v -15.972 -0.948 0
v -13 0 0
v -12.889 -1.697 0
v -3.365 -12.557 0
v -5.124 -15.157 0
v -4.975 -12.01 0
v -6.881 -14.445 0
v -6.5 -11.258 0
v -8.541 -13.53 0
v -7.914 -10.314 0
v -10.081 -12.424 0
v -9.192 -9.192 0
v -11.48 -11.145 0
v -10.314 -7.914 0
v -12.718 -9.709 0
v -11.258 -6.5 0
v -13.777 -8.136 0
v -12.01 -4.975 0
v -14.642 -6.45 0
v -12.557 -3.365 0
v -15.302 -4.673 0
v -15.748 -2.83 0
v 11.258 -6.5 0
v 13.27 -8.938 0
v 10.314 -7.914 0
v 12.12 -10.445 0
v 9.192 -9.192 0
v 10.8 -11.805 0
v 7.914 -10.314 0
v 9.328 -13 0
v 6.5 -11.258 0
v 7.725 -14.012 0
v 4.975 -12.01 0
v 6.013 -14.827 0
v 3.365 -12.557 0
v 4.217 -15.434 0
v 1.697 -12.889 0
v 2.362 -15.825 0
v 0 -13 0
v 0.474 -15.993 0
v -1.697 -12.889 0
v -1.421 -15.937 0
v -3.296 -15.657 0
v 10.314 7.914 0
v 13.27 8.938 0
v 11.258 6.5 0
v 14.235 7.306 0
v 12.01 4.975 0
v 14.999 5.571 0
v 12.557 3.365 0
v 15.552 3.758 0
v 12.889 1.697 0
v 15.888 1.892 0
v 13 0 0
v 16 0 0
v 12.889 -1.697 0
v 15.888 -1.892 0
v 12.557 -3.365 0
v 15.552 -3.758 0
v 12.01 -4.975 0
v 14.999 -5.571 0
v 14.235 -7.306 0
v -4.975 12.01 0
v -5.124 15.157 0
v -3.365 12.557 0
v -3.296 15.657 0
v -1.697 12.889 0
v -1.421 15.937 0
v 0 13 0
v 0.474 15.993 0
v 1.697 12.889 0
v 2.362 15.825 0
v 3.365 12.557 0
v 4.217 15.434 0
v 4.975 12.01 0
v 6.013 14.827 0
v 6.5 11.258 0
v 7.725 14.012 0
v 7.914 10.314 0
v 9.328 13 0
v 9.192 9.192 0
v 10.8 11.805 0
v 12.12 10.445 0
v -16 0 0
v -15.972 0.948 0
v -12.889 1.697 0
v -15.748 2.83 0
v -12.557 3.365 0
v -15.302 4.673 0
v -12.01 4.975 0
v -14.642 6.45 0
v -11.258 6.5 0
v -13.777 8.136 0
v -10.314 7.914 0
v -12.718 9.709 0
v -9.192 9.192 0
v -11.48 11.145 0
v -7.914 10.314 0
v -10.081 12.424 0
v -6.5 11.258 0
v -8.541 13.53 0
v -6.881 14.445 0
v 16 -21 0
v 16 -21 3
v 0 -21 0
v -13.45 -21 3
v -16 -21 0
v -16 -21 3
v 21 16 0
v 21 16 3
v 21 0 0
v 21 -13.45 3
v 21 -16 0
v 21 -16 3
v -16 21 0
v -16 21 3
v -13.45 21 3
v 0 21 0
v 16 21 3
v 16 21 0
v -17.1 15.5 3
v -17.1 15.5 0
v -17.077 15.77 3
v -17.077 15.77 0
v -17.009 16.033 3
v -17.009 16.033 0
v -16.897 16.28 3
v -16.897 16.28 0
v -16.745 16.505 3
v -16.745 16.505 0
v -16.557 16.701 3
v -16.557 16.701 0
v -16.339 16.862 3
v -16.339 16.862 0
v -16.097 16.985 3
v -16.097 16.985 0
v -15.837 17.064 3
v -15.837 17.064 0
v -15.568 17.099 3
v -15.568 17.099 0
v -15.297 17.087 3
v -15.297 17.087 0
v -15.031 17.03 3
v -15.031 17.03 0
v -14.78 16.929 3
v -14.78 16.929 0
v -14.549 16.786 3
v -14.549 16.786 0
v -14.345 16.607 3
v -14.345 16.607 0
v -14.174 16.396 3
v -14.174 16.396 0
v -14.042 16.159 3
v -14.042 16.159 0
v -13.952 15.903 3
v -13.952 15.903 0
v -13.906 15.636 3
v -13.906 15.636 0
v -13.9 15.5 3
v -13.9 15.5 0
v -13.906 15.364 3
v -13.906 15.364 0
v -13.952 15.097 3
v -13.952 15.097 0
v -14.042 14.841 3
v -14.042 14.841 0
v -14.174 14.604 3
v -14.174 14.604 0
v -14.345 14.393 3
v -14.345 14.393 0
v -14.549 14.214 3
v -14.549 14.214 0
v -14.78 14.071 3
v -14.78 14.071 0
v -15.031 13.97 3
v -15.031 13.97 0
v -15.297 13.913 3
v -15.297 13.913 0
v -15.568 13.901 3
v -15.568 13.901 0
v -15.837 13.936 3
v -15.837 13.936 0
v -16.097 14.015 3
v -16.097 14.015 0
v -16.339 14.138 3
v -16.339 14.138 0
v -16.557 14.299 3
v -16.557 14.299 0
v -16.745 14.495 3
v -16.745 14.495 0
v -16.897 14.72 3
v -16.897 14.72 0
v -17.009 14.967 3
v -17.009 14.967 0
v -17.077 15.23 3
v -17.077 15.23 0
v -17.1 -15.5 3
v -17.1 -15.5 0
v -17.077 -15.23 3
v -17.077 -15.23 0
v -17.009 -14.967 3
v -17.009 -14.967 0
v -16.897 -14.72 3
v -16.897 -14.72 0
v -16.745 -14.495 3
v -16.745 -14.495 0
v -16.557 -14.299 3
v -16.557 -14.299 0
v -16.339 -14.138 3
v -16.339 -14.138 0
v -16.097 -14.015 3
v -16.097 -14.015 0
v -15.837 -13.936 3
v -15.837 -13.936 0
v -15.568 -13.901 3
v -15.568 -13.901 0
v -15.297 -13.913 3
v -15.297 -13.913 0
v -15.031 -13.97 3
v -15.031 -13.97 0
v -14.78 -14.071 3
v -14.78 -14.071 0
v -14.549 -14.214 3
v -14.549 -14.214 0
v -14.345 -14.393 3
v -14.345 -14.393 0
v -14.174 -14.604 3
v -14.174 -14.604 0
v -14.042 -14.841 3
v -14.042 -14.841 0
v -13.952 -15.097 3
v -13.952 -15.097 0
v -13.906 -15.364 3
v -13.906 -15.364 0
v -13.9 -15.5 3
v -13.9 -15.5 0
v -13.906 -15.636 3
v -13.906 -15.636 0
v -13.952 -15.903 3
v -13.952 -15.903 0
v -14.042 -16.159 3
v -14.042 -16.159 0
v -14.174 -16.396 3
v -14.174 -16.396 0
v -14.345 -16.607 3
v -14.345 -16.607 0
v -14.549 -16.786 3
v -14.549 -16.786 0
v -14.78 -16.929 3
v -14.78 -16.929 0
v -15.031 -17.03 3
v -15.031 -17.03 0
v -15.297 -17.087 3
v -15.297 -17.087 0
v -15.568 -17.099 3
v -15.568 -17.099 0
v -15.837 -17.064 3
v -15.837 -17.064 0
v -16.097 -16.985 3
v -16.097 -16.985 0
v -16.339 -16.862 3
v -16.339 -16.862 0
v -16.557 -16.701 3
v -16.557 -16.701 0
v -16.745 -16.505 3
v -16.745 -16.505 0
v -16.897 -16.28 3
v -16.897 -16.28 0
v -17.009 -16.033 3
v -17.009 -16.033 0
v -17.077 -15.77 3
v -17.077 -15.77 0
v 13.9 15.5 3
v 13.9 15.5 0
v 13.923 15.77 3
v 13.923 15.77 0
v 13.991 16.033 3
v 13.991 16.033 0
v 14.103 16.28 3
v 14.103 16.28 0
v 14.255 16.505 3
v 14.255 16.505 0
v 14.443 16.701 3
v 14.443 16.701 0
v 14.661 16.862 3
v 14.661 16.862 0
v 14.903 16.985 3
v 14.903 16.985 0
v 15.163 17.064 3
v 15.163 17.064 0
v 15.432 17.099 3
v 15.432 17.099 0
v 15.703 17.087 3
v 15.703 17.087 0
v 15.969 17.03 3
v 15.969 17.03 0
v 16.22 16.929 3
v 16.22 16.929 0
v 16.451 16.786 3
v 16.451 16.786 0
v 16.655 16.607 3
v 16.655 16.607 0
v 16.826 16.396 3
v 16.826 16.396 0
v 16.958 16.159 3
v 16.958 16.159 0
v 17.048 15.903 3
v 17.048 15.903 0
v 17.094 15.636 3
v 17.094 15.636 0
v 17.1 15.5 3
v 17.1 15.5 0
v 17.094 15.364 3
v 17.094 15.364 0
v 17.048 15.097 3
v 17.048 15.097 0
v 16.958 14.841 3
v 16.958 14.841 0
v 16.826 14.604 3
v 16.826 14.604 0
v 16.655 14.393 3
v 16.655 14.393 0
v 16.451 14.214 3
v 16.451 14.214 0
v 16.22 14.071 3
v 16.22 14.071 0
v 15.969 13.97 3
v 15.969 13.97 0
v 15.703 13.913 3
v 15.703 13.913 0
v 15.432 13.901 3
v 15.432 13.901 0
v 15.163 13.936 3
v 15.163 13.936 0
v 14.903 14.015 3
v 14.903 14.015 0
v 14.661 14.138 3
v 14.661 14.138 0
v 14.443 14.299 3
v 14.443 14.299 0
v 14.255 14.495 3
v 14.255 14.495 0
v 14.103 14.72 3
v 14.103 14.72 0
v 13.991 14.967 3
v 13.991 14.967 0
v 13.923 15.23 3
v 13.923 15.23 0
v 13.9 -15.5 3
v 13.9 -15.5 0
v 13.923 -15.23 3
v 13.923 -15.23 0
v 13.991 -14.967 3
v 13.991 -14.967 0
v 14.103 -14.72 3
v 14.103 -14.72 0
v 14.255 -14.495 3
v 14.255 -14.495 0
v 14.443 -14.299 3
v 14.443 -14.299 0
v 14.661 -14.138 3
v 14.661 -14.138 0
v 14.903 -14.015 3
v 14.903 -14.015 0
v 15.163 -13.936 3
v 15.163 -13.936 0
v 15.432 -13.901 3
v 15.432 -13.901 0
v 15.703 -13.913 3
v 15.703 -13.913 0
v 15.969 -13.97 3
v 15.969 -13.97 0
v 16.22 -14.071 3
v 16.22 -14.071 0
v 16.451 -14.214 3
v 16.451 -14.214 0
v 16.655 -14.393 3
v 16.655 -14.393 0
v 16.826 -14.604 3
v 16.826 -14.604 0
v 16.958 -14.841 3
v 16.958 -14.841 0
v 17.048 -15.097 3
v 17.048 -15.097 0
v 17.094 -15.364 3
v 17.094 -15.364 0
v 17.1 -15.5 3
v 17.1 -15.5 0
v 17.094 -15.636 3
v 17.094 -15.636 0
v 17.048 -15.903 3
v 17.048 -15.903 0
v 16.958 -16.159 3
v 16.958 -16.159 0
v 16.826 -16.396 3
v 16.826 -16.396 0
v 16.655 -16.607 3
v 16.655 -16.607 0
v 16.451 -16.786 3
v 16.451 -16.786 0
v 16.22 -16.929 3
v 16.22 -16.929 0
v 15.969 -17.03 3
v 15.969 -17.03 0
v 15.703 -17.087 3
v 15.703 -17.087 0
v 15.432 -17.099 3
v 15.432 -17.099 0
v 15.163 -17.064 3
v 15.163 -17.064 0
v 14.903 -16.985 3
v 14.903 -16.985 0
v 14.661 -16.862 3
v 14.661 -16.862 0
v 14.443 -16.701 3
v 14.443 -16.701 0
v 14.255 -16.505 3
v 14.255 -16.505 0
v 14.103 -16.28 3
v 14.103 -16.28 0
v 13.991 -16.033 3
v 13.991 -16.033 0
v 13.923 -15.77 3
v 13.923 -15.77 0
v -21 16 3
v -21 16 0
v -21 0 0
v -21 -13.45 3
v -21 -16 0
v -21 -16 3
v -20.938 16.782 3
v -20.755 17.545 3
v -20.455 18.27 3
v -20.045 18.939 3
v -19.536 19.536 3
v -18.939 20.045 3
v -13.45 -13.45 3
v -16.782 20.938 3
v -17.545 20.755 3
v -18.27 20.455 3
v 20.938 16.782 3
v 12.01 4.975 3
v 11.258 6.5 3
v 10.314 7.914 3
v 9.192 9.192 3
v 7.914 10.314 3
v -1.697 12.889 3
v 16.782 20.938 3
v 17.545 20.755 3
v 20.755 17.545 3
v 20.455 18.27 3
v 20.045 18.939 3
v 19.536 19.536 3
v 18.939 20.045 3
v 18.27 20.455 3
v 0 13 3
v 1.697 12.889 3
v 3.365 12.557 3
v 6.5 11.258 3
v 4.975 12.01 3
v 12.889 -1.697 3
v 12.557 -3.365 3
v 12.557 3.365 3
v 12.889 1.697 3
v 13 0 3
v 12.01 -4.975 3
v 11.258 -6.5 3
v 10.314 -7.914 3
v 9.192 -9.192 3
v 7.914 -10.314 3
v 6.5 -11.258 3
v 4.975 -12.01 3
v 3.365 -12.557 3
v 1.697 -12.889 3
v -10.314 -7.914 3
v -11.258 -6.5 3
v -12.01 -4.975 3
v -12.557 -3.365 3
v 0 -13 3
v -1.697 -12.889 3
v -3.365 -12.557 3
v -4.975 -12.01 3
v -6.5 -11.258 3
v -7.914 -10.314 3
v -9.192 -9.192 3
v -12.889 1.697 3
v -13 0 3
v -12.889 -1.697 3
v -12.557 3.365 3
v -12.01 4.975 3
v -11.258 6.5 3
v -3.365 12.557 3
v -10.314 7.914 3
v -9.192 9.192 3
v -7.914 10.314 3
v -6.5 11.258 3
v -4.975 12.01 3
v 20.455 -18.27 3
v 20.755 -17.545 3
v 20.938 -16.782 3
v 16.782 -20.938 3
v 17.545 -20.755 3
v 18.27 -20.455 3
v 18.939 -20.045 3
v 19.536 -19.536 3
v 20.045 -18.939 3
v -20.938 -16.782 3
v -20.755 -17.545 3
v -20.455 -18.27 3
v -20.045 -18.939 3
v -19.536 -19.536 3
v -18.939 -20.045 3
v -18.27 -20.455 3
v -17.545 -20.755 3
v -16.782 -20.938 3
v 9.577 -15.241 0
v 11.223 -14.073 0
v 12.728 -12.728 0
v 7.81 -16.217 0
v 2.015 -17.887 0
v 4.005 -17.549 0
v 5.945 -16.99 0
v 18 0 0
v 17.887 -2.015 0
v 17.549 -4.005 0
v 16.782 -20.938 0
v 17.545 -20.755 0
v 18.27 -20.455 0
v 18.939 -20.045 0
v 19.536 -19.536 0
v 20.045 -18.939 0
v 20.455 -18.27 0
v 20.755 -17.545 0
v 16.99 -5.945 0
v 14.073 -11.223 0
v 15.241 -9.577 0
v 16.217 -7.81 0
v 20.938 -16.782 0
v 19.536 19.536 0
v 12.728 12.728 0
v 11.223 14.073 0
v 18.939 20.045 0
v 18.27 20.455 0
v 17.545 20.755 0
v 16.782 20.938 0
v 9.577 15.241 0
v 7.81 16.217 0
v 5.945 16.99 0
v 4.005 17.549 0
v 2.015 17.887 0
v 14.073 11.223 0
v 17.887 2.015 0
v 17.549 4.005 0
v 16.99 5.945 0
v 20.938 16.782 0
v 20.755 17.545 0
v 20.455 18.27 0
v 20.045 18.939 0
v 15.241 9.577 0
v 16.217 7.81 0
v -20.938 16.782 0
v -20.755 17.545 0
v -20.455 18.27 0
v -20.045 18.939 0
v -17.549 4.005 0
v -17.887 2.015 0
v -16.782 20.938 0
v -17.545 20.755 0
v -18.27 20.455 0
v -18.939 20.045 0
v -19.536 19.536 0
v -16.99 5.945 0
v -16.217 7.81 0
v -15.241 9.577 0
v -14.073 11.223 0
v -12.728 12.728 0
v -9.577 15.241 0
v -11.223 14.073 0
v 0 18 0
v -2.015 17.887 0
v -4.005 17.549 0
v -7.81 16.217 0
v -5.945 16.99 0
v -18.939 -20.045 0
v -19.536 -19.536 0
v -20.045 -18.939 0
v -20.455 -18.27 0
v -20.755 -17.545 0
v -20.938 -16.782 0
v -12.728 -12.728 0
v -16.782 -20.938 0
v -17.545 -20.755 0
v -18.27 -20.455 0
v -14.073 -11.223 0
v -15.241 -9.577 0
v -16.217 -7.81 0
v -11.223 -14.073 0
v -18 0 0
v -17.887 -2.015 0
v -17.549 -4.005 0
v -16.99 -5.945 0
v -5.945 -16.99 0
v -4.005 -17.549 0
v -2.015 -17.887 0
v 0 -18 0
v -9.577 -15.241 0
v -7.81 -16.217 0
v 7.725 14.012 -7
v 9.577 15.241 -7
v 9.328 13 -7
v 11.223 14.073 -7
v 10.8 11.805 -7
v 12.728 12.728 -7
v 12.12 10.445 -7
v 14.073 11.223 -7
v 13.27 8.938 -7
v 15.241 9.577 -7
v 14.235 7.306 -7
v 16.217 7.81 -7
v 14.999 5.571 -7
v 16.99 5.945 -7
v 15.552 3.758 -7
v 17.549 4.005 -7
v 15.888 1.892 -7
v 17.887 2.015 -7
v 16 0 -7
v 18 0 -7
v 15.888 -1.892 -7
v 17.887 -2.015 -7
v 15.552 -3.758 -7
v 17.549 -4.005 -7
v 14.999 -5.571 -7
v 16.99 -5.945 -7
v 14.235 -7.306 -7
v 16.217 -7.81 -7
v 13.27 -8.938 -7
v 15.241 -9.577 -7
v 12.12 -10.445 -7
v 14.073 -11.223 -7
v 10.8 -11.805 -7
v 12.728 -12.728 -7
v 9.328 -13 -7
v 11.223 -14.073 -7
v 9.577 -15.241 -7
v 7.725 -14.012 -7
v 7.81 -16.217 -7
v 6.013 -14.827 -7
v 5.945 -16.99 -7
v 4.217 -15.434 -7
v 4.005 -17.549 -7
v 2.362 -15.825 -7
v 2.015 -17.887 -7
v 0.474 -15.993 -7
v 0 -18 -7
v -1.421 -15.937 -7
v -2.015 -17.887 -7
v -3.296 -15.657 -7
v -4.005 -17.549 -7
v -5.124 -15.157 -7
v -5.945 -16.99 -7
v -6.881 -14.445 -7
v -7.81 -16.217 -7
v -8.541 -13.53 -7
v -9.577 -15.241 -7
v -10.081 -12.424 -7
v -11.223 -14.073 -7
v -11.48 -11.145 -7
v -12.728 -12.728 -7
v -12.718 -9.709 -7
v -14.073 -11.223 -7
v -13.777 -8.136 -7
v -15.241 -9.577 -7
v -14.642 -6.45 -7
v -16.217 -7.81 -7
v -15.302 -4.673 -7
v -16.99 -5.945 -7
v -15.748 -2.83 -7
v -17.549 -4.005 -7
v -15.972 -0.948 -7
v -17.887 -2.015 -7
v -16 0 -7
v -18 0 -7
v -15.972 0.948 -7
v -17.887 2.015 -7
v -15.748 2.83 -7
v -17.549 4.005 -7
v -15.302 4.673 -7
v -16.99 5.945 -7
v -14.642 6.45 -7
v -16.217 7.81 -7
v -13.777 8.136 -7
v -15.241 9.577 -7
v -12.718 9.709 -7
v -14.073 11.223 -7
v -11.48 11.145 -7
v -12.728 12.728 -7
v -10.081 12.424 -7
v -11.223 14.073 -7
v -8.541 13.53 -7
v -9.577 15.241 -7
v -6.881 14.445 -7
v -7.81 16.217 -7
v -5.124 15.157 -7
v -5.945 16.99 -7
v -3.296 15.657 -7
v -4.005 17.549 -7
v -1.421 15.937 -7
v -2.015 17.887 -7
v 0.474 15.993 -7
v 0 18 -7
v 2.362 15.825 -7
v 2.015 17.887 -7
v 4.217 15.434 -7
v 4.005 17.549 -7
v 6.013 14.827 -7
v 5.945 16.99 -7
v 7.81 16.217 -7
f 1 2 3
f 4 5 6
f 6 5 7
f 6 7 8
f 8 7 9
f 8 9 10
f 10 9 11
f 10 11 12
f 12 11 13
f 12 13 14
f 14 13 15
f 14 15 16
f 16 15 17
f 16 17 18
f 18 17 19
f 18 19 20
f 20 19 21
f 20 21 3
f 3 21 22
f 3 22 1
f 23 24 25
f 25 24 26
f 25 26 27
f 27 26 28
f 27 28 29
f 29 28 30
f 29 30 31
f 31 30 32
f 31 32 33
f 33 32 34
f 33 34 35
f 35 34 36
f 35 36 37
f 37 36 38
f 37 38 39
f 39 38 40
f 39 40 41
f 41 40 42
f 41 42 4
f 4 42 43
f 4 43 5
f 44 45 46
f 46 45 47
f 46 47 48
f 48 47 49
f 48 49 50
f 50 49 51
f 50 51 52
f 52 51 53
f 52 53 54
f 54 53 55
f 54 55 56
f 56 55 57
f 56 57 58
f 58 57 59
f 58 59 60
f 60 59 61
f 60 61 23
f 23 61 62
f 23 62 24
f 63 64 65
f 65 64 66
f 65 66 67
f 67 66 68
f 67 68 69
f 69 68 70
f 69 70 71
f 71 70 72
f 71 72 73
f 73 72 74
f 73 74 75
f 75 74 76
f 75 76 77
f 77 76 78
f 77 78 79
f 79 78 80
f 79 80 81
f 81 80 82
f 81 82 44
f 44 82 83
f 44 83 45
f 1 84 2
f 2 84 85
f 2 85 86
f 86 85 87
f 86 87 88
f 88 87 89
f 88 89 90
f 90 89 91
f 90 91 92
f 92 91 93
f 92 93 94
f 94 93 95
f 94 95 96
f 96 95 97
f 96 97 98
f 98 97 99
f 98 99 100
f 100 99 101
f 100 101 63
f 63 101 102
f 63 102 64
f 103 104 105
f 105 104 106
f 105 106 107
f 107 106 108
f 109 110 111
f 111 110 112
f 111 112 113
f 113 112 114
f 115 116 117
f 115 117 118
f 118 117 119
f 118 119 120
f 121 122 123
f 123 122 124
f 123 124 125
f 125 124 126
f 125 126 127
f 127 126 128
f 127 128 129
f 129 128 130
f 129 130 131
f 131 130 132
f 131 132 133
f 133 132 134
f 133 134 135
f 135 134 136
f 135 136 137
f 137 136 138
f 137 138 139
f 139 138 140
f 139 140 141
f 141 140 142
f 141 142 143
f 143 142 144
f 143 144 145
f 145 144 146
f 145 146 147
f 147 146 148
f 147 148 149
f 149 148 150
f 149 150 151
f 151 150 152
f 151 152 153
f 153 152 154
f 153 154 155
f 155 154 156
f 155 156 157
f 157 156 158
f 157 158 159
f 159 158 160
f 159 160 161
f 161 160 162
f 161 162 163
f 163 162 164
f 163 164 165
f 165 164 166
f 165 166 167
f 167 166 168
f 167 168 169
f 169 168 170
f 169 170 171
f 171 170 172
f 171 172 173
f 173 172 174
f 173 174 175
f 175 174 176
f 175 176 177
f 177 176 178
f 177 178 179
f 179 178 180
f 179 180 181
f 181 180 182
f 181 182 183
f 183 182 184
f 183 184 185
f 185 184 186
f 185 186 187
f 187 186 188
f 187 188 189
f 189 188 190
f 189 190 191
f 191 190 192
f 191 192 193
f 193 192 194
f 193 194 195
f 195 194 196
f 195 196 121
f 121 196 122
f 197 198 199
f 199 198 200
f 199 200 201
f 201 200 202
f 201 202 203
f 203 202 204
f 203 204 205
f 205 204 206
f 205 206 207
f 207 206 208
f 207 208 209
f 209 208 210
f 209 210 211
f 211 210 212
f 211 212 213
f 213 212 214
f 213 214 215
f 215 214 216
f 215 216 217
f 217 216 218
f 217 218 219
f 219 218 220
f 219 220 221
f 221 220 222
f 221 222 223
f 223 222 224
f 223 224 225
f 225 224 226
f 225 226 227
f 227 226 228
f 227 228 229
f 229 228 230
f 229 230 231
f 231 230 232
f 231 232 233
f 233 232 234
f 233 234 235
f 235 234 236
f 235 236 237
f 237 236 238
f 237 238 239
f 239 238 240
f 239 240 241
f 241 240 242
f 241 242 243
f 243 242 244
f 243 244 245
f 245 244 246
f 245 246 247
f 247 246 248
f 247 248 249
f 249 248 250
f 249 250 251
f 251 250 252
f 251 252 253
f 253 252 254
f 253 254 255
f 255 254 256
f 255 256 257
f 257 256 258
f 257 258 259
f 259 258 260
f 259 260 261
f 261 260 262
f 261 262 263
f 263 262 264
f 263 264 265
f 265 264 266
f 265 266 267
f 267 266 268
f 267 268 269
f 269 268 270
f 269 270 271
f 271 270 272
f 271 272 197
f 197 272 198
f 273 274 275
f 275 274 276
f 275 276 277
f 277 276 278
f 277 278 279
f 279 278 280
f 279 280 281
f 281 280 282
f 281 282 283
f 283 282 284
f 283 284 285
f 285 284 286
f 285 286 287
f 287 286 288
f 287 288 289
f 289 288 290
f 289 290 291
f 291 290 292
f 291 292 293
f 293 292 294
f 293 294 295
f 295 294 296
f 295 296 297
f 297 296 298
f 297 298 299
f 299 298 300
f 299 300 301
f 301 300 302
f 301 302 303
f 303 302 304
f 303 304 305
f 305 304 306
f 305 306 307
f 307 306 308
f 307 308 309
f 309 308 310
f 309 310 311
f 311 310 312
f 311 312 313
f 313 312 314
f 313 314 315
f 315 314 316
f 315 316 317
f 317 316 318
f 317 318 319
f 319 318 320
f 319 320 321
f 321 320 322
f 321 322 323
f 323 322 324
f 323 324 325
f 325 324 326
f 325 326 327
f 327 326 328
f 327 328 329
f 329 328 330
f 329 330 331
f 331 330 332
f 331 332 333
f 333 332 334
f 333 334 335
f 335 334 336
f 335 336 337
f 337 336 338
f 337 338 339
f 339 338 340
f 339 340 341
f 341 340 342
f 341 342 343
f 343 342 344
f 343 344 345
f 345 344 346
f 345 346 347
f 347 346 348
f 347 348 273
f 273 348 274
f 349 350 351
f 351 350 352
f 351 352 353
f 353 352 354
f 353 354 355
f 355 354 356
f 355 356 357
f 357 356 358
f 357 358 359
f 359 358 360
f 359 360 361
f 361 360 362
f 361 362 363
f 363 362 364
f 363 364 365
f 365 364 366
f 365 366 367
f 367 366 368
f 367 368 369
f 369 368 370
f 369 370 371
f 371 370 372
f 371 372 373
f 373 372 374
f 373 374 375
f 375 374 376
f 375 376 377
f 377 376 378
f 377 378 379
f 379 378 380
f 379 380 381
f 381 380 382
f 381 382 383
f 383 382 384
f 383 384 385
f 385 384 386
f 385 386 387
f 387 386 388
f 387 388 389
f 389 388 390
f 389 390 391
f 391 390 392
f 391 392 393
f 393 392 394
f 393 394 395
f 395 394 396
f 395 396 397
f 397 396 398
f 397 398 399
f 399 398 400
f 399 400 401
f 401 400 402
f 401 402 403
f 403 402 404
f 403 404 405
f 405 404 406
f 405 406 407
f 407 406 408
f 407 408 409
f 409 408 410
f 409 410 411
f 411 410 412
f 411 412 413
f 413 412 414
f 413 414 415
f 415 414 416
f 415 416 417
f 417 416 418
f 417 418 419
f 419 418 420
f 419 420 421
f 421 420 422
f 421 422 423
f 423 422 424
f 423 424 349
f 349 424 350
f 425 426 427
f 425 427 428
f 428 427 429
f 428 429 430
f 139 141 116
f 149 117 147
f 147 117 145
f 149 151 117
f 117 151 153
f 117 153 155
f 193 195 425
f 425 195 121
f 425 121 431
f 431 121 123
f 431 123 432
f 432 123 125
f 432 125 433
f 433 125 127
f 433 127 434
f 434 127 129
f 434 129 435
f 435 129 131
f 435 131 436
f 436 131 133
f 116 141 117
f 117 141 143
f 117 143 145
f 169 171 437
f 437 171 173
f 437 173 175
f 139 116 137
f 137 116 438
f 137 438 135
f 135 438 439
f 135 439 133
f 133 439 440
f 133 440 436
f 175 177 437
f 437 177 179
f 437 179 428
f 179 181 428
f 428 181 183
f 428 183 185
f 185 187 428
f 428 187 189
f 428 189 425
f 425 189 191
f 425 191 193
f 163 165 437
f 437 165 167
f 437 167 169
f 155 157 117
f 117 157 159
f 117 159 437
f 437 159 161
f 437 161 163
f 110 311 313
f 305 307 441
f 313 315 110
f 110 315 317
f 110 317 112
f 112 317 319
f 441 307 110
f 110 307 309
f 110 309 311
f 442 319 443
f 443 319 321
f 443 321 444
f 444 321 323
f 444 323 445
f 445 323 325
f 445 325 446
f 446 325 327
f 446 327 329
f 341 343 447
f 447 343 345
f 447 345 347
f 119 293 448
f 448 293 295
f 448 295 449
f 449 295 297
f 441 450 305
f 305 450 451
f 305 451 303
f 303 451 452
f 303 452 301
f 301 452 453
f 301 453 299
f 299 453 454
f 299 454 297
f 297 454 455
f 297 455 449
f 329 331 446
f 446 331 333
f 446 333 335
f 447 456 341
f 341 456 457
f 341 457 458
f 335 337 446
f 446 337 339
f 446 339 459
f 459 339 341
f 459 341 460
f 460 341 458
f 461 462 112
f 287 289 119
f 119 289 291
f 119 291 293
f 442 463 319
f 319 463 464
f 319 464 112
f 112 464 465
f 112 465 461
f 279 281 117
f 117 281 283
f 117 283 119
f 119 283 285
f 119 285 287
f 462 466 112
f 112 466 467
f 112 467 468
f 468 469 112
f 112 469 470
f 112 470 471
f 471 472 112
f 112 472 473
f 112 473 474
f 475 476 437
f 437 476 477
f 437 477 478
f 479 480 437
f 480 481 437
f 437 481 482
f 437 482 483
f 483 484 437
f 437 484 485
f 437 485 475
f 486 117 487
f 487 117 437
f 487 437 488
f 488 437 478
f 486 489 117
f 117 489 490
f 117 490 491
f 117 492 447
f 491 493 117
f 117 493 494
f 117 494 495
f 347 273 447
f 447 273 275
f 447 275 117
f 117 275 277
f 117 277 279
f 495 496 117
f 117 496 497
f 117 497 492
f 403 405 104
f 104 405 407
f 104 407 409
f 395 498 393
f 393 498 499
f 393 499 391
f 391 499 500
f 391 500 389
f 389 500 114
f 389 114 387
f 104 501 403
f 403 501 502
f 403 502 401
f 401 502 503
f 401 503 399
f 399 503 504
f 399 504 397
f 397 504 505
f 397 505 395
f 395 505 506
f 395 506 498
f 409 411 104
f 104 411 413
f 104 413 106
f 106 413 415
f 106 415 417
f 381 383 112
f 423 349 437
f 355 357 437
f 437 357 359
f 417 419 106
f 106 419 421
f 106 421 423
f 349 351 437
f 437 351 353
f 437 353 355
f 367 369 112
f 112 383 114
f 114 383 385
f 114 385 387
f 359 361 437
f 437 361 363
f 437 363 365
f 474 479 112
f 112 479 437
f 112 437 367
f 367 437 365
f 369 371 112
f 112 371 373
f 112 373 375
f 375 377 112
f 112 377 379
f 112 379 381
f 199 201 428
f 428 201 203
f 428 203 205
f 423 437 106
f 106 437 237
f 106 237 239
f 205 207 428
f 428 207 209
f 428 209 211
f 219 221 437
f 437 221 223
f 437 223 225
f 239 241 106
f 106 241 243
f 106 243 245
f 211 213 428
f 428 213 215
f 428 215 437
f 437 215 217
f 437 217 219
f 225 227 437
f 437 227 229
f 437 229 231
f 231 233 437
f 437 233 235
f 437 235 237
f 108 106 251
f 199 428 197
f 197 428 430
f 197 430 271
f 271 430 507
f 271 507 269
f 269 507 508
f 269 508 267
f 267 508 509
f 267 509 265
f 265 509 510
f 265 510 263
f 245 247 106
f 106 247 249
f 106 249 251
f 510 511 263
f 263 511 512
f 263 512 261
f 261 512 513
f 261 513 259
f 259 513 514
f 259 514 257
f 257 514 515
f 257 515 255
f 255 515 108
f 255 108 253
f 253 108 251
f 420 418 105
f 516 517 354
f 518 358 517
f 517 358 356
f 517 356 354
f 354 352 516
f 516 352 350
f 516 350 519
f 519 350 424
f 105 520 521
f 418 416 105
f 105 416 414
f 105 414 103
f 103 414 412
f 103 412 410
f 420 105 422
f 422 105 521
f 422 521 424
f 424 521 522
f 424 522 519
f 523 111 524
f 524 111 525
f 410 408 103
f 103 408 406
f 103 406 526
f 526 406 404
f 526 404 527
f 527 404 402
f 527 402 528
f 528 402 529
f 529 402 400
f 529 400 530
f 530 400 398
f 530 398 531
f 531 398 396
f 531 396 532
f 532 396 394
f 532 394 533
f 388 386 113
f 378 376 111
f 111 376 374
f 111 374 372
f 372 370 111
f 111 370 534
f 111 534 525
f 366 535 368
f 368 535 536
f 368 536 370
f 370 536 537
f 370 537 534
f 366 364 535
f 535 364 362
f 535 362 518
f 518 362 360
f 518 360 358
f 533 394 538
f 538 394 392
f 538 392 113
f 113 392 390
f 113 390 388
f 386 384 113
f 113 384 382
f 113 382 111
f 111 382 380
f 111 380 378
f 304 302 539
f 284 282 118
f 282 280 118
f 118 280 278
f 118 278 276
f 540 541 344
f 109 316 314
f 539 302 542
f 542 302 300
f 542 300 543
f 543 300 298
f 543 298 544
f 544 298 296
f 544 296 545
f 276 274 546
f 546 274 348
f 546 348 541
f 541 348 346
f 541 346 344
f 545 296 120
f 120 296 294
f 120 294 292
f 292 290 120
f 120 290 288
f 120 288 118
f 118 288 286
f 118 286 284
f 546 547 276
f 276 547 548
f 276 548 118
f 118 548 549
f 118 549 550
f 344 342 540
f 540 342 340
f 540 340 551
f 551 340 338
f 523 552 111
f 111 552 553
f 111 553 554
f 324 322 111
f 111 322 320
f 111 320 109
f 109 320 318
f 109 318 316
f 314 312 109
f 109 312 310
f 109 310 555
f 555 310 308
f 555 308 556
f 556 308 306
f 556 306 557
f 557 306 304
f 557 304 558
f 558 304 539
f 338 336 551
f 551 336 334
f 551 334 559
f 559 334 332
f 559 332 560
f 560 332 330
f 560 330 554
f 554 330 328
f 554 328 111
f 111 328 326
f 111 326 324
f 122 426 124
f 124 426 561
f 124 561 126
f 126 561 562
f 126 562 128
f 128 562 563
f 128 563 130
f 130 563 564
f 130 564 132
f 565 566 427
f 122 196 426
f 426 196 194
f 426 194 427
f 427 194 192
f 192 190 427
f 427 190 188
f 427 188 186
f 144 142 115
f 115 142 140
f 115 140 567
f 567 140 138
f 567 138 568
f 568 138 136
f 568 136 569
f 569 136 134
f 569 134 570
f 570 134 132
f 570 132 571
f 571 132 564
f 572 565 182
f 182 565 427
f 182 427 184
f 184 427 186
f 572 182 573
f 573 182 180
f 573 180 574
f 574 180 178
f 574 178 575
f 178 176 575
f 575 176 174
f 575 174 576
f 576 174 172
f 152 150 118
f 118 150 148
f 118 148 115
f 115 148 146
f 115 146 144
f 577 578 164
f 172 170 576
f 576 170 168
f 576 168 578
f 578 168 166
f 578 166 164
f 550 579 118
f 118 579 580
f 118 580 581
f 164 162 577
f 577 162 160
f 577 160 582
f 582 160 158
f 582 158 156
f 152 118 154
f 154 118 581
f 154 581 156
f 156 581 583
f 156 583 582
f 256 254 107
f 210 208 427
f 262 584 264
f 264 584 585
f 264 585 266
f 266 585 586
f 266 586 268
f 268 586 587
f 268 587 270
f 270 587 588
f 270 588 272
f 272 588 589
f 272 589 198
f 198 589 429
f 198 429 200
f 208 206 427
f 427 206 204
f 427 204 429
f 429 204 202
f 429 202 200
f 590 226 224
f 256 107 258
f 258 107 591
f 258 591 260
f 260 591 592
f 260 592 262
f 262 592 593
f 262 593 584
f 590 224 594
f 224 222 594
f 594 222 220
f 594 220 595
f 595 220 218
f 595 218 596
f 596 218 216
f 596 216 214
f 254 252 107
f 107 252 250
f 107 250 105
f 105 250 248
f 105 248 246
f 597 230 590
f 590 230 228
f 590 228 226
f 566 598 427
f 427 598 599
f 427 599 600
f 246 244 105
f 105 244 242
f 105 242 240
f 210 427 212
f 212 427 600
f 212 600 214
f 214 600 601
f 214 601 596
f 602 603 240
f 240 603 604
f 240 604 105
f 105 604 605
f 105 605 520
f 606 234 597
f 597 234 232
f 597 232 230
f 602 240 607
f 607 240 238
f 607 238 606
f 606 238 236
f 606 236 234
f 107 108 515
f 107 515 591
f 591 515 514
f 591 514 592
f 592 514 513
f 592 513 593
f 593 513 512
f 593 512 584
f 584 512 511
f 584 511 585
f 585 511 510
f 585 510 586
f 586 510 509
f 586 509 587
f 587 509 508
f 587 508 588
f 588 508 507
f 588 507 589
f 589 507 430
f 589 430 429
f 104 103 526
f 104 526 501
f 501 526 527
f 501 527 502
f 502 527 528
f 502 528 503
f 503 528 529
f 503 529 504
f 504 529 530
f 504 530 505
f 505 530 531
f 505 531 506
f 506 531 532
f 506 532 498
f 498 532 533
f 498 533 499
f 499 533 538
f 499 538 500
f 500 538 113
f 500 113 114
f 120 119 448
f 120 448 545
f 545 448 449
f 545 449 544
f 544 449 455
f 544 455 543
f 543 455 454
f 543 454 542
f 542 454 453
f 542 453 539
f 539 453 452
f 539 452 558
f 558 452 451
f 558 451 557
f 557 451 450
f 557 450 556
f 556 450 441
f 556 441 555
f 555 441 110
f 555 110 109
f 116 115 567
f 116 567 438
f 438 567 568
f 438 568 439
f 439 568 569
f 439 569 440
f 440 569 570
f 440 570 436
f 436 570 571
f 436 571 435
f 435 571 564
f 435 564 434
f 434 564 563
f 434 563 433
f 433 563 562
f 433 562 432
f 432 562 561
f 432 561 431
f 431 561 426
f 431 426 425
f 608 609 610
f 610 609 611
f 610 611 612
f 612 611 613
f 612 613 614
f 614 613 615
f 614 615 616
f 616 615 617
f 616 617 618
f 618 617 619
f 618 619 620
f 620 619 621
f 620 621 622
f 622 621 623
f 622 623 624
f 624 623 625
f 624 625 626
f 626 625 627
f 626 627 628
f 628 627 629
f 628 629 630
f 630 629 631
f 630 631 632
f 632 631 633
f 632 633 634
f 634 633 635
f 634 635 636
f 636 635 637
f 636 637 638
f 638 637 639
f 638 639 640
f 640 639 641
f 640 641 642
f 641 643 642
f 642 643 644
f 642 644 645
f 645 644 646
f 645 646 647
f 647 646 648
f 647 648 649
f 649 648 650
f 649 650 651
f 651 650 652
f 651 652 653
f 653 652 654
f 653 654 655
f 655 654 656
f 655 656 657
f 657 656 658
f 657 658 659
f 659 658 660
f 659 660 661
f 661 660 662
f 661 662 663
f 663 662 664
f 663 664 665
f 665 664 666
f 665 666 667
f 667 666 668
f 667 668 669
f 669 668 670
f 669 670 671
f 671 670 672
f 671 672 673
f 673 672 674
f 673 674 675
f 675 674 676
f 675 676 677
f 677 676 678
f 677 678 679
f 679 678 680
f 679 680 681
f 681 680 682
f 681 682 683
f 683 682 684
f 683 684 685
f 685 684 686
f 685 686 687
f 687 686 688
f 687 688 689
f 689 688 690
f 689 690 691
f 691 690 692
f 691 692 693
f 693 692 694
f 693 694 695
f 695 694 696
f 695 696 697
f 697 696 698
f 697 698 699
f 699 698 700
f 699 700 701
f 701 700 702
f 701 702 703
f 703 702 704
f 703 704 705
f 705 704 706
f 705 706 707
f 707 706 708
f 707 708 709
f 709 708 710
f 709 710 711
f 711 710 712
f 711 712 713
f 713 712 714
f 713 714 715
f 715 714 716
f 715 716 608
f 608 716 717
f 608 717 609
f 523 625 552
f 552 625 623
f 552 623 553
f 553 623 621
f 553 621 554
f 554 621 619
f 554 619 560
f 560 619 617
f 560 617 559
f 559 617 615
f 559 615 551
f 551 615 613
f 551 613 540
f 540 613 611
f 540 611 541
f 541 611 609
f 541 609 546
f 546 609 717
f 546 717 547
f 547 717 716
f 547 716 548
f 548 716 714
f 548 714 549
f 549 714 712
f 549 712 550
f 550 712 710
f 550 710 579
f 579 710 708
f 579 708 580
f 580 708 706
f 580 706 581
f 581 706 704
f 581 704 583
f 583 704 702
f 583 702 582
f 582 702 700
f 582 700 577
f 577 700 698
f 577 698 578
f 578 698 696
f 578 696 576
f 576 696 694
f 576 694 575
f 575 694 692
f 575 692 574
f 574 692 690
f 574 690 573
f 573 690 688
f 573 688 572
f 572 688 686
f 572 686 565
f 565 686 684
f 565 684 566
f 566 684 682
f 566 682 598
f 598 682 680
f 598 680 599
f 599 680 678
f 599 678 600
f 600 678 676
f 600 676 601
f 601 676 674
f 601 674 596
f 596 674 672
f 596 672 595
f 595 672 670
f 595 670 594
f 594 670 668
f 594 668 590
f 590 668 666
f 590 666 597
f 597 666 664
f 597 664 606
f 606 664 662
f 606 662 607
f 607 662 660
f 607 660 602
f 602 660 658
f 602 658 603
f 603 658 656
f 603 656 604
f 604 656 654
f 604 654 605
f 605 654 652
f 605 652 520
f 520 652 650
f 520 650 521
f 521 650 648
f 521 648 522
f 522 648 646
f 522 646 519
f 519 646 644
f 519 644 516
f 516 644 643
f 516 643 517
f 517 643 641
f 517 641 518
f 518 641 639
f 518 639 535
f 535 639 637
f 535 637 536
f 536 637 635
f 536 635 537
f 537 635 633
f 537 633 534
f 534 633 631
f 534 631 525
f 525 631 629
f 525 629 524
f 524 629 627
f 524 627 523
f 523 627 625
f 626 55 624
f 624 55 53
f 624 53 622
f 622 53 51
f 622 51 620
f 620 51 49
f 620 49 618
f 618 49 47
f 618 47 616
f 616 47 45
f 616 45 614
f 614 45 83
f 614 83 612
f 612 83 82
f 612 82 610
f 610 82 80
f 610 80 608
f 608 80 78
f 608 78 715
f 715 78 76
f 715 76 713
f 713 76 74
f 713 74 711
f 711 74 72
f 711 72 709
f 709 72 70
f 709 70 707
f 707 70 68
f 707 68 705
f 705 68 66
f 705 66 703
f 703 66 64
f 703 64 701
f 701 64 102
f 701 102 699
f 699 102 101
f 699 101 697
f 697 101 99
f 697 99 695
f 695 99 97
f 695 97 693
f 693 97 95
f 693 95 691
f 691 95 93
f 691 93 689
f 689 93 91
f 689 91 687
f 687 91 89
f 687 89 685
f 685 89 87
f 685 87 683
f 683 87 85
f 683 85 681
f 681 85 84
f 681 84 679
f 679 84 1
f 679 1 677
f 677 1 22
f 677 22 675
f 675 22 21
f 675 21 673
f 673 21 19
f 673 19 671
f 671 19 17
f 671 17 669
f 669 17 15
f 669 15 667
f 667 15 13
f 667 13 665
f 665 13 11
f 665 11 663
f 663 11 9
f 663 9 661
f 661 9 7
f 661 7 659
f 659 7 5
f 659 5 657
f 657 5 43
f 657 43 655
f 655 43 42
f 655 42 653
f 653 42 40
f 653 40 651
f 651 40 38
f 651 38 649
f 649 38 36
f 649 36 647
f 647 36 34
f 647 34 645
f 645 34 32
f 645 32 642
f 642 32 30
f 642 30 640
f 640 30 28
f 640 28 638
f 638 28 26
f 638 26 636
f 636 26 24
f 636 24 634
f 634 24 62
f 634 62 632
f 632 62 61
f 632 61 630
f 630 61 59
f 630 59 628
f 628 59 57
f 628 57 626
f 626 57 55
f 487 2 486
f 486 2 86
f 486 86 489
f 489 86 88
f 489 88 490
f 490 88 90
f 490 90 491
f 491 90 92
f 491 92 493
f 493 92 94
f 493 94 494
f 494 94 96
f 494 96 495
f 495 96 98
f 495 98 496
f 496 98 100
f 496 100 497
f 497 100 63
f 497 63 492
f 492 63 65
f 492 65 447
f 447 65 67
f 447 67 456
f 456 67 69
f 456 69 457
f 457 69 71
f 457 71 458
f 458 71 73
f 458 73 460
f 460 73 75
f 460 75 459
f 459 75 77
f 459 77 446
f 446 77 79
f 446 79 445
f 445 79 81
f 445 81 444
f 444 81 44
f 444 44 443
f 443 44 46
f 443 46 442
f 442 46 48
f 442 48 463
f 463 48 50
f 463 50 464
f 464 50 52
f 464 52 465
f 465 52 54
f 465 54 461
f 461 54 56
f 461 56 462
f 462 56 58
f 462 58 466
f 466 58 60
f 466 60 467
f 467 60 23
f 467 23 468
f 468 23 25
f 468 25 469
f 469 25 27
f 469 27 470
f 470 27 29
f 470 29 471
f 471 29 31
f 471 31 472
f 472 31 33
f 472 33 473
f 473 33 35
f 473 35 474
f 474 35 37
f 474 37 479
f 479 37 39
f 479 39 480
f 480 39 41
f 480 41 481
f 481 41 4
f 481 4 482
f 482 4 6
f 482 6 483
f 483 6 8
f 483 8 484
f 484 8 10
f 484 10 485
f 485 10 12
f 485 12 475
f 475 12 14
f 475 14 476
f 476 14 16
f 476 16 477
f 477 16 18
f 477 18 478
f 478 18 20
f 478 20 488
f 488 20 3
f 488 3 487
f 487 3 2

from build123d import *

# Parameters (mm, degrees)
SKETCH_1_W          = 42
SKETCH_1_H          = 42
SKETCH_1_R          = 1.6
SKETCH_1_R_2        = 11
EXTRUDE_1_DEPTH     = 3
FILLET_1_R          = 5
SKETCH_2_R          = 18
SKETCH_2_R_2        = 16
EXTRUDE_2_DEPTH     = 7
SKETCH_3_R          = 13
CUT_EXTRUDE_1_DEPTH = 3


with BuildPart() as part:
    # 草图1 → 凸台-拉伸1 (new body)
    with BuildSketch(Plane.XY):
        Rectangle(SKETCH_1_W, SKETCH_1_H)
        with Locations((-15.5, 15.5)):
            Circle(SKETCH_1_R, mode=Mode.SUBTRACT)
        with Locations((15.5, 15.5)):
            Circle(SKETCH_1_R, mode=Mode.SUBTRACT)
        with Locations((15.5, -15.5)):
            Circle(SKETCH_1_R, mode=Mode.SUBTRACT)
        with Locations((-15.5, -15.5)):
            Circle(SKETCH_1_R, mode=Mode.SUBTRACT)
        Circle(SKETCH_1_R_2, mode=Mode.SUBTRACT)
    extrude(amount=EXTRUDE_1_DEPTH)

    # 圆角1
    fillet_1_edges = [part.edges().sort_by_distance(p)[0] for p in [
        (-21, -21, 1.5),
        (-21, 21, 1.5),
        (21, 21, 1.5),
        (21, -21, 1.5),
    ]]
    fillet(fillet_1_edges, radius=FILLET_1_R)

    # 草图2 → 凸台-拉伸2 (add)
    with BuildSketch(Plane(origin=(0, 0, 0), x_dir=(-1, 0, 0), z_dir=(0, 0, -1))):
        with Locations(Location((0, 0, 0), (0, 0, 180))):
            Circle(SKETCH_2_R)
        Circle(SKETCH_2_R_2, mode=Mode.SUBTRACT)
    extrude(amount=EXTRUDE_2_DEPTH)

    # 草图3 → 切除-拉伸1 (cut)
    with BuildSketch(Plane(origin=(0, 0, 0), x_dir=(-1, 0, 0), z_dir=(0, 0, -1))):
        Circle(SKETCH_3_R)
    extrude(amount=-CUT_EXTRUDE_1_DEPTH, mode=Mode.SUBTRACT)


solid = part.part
